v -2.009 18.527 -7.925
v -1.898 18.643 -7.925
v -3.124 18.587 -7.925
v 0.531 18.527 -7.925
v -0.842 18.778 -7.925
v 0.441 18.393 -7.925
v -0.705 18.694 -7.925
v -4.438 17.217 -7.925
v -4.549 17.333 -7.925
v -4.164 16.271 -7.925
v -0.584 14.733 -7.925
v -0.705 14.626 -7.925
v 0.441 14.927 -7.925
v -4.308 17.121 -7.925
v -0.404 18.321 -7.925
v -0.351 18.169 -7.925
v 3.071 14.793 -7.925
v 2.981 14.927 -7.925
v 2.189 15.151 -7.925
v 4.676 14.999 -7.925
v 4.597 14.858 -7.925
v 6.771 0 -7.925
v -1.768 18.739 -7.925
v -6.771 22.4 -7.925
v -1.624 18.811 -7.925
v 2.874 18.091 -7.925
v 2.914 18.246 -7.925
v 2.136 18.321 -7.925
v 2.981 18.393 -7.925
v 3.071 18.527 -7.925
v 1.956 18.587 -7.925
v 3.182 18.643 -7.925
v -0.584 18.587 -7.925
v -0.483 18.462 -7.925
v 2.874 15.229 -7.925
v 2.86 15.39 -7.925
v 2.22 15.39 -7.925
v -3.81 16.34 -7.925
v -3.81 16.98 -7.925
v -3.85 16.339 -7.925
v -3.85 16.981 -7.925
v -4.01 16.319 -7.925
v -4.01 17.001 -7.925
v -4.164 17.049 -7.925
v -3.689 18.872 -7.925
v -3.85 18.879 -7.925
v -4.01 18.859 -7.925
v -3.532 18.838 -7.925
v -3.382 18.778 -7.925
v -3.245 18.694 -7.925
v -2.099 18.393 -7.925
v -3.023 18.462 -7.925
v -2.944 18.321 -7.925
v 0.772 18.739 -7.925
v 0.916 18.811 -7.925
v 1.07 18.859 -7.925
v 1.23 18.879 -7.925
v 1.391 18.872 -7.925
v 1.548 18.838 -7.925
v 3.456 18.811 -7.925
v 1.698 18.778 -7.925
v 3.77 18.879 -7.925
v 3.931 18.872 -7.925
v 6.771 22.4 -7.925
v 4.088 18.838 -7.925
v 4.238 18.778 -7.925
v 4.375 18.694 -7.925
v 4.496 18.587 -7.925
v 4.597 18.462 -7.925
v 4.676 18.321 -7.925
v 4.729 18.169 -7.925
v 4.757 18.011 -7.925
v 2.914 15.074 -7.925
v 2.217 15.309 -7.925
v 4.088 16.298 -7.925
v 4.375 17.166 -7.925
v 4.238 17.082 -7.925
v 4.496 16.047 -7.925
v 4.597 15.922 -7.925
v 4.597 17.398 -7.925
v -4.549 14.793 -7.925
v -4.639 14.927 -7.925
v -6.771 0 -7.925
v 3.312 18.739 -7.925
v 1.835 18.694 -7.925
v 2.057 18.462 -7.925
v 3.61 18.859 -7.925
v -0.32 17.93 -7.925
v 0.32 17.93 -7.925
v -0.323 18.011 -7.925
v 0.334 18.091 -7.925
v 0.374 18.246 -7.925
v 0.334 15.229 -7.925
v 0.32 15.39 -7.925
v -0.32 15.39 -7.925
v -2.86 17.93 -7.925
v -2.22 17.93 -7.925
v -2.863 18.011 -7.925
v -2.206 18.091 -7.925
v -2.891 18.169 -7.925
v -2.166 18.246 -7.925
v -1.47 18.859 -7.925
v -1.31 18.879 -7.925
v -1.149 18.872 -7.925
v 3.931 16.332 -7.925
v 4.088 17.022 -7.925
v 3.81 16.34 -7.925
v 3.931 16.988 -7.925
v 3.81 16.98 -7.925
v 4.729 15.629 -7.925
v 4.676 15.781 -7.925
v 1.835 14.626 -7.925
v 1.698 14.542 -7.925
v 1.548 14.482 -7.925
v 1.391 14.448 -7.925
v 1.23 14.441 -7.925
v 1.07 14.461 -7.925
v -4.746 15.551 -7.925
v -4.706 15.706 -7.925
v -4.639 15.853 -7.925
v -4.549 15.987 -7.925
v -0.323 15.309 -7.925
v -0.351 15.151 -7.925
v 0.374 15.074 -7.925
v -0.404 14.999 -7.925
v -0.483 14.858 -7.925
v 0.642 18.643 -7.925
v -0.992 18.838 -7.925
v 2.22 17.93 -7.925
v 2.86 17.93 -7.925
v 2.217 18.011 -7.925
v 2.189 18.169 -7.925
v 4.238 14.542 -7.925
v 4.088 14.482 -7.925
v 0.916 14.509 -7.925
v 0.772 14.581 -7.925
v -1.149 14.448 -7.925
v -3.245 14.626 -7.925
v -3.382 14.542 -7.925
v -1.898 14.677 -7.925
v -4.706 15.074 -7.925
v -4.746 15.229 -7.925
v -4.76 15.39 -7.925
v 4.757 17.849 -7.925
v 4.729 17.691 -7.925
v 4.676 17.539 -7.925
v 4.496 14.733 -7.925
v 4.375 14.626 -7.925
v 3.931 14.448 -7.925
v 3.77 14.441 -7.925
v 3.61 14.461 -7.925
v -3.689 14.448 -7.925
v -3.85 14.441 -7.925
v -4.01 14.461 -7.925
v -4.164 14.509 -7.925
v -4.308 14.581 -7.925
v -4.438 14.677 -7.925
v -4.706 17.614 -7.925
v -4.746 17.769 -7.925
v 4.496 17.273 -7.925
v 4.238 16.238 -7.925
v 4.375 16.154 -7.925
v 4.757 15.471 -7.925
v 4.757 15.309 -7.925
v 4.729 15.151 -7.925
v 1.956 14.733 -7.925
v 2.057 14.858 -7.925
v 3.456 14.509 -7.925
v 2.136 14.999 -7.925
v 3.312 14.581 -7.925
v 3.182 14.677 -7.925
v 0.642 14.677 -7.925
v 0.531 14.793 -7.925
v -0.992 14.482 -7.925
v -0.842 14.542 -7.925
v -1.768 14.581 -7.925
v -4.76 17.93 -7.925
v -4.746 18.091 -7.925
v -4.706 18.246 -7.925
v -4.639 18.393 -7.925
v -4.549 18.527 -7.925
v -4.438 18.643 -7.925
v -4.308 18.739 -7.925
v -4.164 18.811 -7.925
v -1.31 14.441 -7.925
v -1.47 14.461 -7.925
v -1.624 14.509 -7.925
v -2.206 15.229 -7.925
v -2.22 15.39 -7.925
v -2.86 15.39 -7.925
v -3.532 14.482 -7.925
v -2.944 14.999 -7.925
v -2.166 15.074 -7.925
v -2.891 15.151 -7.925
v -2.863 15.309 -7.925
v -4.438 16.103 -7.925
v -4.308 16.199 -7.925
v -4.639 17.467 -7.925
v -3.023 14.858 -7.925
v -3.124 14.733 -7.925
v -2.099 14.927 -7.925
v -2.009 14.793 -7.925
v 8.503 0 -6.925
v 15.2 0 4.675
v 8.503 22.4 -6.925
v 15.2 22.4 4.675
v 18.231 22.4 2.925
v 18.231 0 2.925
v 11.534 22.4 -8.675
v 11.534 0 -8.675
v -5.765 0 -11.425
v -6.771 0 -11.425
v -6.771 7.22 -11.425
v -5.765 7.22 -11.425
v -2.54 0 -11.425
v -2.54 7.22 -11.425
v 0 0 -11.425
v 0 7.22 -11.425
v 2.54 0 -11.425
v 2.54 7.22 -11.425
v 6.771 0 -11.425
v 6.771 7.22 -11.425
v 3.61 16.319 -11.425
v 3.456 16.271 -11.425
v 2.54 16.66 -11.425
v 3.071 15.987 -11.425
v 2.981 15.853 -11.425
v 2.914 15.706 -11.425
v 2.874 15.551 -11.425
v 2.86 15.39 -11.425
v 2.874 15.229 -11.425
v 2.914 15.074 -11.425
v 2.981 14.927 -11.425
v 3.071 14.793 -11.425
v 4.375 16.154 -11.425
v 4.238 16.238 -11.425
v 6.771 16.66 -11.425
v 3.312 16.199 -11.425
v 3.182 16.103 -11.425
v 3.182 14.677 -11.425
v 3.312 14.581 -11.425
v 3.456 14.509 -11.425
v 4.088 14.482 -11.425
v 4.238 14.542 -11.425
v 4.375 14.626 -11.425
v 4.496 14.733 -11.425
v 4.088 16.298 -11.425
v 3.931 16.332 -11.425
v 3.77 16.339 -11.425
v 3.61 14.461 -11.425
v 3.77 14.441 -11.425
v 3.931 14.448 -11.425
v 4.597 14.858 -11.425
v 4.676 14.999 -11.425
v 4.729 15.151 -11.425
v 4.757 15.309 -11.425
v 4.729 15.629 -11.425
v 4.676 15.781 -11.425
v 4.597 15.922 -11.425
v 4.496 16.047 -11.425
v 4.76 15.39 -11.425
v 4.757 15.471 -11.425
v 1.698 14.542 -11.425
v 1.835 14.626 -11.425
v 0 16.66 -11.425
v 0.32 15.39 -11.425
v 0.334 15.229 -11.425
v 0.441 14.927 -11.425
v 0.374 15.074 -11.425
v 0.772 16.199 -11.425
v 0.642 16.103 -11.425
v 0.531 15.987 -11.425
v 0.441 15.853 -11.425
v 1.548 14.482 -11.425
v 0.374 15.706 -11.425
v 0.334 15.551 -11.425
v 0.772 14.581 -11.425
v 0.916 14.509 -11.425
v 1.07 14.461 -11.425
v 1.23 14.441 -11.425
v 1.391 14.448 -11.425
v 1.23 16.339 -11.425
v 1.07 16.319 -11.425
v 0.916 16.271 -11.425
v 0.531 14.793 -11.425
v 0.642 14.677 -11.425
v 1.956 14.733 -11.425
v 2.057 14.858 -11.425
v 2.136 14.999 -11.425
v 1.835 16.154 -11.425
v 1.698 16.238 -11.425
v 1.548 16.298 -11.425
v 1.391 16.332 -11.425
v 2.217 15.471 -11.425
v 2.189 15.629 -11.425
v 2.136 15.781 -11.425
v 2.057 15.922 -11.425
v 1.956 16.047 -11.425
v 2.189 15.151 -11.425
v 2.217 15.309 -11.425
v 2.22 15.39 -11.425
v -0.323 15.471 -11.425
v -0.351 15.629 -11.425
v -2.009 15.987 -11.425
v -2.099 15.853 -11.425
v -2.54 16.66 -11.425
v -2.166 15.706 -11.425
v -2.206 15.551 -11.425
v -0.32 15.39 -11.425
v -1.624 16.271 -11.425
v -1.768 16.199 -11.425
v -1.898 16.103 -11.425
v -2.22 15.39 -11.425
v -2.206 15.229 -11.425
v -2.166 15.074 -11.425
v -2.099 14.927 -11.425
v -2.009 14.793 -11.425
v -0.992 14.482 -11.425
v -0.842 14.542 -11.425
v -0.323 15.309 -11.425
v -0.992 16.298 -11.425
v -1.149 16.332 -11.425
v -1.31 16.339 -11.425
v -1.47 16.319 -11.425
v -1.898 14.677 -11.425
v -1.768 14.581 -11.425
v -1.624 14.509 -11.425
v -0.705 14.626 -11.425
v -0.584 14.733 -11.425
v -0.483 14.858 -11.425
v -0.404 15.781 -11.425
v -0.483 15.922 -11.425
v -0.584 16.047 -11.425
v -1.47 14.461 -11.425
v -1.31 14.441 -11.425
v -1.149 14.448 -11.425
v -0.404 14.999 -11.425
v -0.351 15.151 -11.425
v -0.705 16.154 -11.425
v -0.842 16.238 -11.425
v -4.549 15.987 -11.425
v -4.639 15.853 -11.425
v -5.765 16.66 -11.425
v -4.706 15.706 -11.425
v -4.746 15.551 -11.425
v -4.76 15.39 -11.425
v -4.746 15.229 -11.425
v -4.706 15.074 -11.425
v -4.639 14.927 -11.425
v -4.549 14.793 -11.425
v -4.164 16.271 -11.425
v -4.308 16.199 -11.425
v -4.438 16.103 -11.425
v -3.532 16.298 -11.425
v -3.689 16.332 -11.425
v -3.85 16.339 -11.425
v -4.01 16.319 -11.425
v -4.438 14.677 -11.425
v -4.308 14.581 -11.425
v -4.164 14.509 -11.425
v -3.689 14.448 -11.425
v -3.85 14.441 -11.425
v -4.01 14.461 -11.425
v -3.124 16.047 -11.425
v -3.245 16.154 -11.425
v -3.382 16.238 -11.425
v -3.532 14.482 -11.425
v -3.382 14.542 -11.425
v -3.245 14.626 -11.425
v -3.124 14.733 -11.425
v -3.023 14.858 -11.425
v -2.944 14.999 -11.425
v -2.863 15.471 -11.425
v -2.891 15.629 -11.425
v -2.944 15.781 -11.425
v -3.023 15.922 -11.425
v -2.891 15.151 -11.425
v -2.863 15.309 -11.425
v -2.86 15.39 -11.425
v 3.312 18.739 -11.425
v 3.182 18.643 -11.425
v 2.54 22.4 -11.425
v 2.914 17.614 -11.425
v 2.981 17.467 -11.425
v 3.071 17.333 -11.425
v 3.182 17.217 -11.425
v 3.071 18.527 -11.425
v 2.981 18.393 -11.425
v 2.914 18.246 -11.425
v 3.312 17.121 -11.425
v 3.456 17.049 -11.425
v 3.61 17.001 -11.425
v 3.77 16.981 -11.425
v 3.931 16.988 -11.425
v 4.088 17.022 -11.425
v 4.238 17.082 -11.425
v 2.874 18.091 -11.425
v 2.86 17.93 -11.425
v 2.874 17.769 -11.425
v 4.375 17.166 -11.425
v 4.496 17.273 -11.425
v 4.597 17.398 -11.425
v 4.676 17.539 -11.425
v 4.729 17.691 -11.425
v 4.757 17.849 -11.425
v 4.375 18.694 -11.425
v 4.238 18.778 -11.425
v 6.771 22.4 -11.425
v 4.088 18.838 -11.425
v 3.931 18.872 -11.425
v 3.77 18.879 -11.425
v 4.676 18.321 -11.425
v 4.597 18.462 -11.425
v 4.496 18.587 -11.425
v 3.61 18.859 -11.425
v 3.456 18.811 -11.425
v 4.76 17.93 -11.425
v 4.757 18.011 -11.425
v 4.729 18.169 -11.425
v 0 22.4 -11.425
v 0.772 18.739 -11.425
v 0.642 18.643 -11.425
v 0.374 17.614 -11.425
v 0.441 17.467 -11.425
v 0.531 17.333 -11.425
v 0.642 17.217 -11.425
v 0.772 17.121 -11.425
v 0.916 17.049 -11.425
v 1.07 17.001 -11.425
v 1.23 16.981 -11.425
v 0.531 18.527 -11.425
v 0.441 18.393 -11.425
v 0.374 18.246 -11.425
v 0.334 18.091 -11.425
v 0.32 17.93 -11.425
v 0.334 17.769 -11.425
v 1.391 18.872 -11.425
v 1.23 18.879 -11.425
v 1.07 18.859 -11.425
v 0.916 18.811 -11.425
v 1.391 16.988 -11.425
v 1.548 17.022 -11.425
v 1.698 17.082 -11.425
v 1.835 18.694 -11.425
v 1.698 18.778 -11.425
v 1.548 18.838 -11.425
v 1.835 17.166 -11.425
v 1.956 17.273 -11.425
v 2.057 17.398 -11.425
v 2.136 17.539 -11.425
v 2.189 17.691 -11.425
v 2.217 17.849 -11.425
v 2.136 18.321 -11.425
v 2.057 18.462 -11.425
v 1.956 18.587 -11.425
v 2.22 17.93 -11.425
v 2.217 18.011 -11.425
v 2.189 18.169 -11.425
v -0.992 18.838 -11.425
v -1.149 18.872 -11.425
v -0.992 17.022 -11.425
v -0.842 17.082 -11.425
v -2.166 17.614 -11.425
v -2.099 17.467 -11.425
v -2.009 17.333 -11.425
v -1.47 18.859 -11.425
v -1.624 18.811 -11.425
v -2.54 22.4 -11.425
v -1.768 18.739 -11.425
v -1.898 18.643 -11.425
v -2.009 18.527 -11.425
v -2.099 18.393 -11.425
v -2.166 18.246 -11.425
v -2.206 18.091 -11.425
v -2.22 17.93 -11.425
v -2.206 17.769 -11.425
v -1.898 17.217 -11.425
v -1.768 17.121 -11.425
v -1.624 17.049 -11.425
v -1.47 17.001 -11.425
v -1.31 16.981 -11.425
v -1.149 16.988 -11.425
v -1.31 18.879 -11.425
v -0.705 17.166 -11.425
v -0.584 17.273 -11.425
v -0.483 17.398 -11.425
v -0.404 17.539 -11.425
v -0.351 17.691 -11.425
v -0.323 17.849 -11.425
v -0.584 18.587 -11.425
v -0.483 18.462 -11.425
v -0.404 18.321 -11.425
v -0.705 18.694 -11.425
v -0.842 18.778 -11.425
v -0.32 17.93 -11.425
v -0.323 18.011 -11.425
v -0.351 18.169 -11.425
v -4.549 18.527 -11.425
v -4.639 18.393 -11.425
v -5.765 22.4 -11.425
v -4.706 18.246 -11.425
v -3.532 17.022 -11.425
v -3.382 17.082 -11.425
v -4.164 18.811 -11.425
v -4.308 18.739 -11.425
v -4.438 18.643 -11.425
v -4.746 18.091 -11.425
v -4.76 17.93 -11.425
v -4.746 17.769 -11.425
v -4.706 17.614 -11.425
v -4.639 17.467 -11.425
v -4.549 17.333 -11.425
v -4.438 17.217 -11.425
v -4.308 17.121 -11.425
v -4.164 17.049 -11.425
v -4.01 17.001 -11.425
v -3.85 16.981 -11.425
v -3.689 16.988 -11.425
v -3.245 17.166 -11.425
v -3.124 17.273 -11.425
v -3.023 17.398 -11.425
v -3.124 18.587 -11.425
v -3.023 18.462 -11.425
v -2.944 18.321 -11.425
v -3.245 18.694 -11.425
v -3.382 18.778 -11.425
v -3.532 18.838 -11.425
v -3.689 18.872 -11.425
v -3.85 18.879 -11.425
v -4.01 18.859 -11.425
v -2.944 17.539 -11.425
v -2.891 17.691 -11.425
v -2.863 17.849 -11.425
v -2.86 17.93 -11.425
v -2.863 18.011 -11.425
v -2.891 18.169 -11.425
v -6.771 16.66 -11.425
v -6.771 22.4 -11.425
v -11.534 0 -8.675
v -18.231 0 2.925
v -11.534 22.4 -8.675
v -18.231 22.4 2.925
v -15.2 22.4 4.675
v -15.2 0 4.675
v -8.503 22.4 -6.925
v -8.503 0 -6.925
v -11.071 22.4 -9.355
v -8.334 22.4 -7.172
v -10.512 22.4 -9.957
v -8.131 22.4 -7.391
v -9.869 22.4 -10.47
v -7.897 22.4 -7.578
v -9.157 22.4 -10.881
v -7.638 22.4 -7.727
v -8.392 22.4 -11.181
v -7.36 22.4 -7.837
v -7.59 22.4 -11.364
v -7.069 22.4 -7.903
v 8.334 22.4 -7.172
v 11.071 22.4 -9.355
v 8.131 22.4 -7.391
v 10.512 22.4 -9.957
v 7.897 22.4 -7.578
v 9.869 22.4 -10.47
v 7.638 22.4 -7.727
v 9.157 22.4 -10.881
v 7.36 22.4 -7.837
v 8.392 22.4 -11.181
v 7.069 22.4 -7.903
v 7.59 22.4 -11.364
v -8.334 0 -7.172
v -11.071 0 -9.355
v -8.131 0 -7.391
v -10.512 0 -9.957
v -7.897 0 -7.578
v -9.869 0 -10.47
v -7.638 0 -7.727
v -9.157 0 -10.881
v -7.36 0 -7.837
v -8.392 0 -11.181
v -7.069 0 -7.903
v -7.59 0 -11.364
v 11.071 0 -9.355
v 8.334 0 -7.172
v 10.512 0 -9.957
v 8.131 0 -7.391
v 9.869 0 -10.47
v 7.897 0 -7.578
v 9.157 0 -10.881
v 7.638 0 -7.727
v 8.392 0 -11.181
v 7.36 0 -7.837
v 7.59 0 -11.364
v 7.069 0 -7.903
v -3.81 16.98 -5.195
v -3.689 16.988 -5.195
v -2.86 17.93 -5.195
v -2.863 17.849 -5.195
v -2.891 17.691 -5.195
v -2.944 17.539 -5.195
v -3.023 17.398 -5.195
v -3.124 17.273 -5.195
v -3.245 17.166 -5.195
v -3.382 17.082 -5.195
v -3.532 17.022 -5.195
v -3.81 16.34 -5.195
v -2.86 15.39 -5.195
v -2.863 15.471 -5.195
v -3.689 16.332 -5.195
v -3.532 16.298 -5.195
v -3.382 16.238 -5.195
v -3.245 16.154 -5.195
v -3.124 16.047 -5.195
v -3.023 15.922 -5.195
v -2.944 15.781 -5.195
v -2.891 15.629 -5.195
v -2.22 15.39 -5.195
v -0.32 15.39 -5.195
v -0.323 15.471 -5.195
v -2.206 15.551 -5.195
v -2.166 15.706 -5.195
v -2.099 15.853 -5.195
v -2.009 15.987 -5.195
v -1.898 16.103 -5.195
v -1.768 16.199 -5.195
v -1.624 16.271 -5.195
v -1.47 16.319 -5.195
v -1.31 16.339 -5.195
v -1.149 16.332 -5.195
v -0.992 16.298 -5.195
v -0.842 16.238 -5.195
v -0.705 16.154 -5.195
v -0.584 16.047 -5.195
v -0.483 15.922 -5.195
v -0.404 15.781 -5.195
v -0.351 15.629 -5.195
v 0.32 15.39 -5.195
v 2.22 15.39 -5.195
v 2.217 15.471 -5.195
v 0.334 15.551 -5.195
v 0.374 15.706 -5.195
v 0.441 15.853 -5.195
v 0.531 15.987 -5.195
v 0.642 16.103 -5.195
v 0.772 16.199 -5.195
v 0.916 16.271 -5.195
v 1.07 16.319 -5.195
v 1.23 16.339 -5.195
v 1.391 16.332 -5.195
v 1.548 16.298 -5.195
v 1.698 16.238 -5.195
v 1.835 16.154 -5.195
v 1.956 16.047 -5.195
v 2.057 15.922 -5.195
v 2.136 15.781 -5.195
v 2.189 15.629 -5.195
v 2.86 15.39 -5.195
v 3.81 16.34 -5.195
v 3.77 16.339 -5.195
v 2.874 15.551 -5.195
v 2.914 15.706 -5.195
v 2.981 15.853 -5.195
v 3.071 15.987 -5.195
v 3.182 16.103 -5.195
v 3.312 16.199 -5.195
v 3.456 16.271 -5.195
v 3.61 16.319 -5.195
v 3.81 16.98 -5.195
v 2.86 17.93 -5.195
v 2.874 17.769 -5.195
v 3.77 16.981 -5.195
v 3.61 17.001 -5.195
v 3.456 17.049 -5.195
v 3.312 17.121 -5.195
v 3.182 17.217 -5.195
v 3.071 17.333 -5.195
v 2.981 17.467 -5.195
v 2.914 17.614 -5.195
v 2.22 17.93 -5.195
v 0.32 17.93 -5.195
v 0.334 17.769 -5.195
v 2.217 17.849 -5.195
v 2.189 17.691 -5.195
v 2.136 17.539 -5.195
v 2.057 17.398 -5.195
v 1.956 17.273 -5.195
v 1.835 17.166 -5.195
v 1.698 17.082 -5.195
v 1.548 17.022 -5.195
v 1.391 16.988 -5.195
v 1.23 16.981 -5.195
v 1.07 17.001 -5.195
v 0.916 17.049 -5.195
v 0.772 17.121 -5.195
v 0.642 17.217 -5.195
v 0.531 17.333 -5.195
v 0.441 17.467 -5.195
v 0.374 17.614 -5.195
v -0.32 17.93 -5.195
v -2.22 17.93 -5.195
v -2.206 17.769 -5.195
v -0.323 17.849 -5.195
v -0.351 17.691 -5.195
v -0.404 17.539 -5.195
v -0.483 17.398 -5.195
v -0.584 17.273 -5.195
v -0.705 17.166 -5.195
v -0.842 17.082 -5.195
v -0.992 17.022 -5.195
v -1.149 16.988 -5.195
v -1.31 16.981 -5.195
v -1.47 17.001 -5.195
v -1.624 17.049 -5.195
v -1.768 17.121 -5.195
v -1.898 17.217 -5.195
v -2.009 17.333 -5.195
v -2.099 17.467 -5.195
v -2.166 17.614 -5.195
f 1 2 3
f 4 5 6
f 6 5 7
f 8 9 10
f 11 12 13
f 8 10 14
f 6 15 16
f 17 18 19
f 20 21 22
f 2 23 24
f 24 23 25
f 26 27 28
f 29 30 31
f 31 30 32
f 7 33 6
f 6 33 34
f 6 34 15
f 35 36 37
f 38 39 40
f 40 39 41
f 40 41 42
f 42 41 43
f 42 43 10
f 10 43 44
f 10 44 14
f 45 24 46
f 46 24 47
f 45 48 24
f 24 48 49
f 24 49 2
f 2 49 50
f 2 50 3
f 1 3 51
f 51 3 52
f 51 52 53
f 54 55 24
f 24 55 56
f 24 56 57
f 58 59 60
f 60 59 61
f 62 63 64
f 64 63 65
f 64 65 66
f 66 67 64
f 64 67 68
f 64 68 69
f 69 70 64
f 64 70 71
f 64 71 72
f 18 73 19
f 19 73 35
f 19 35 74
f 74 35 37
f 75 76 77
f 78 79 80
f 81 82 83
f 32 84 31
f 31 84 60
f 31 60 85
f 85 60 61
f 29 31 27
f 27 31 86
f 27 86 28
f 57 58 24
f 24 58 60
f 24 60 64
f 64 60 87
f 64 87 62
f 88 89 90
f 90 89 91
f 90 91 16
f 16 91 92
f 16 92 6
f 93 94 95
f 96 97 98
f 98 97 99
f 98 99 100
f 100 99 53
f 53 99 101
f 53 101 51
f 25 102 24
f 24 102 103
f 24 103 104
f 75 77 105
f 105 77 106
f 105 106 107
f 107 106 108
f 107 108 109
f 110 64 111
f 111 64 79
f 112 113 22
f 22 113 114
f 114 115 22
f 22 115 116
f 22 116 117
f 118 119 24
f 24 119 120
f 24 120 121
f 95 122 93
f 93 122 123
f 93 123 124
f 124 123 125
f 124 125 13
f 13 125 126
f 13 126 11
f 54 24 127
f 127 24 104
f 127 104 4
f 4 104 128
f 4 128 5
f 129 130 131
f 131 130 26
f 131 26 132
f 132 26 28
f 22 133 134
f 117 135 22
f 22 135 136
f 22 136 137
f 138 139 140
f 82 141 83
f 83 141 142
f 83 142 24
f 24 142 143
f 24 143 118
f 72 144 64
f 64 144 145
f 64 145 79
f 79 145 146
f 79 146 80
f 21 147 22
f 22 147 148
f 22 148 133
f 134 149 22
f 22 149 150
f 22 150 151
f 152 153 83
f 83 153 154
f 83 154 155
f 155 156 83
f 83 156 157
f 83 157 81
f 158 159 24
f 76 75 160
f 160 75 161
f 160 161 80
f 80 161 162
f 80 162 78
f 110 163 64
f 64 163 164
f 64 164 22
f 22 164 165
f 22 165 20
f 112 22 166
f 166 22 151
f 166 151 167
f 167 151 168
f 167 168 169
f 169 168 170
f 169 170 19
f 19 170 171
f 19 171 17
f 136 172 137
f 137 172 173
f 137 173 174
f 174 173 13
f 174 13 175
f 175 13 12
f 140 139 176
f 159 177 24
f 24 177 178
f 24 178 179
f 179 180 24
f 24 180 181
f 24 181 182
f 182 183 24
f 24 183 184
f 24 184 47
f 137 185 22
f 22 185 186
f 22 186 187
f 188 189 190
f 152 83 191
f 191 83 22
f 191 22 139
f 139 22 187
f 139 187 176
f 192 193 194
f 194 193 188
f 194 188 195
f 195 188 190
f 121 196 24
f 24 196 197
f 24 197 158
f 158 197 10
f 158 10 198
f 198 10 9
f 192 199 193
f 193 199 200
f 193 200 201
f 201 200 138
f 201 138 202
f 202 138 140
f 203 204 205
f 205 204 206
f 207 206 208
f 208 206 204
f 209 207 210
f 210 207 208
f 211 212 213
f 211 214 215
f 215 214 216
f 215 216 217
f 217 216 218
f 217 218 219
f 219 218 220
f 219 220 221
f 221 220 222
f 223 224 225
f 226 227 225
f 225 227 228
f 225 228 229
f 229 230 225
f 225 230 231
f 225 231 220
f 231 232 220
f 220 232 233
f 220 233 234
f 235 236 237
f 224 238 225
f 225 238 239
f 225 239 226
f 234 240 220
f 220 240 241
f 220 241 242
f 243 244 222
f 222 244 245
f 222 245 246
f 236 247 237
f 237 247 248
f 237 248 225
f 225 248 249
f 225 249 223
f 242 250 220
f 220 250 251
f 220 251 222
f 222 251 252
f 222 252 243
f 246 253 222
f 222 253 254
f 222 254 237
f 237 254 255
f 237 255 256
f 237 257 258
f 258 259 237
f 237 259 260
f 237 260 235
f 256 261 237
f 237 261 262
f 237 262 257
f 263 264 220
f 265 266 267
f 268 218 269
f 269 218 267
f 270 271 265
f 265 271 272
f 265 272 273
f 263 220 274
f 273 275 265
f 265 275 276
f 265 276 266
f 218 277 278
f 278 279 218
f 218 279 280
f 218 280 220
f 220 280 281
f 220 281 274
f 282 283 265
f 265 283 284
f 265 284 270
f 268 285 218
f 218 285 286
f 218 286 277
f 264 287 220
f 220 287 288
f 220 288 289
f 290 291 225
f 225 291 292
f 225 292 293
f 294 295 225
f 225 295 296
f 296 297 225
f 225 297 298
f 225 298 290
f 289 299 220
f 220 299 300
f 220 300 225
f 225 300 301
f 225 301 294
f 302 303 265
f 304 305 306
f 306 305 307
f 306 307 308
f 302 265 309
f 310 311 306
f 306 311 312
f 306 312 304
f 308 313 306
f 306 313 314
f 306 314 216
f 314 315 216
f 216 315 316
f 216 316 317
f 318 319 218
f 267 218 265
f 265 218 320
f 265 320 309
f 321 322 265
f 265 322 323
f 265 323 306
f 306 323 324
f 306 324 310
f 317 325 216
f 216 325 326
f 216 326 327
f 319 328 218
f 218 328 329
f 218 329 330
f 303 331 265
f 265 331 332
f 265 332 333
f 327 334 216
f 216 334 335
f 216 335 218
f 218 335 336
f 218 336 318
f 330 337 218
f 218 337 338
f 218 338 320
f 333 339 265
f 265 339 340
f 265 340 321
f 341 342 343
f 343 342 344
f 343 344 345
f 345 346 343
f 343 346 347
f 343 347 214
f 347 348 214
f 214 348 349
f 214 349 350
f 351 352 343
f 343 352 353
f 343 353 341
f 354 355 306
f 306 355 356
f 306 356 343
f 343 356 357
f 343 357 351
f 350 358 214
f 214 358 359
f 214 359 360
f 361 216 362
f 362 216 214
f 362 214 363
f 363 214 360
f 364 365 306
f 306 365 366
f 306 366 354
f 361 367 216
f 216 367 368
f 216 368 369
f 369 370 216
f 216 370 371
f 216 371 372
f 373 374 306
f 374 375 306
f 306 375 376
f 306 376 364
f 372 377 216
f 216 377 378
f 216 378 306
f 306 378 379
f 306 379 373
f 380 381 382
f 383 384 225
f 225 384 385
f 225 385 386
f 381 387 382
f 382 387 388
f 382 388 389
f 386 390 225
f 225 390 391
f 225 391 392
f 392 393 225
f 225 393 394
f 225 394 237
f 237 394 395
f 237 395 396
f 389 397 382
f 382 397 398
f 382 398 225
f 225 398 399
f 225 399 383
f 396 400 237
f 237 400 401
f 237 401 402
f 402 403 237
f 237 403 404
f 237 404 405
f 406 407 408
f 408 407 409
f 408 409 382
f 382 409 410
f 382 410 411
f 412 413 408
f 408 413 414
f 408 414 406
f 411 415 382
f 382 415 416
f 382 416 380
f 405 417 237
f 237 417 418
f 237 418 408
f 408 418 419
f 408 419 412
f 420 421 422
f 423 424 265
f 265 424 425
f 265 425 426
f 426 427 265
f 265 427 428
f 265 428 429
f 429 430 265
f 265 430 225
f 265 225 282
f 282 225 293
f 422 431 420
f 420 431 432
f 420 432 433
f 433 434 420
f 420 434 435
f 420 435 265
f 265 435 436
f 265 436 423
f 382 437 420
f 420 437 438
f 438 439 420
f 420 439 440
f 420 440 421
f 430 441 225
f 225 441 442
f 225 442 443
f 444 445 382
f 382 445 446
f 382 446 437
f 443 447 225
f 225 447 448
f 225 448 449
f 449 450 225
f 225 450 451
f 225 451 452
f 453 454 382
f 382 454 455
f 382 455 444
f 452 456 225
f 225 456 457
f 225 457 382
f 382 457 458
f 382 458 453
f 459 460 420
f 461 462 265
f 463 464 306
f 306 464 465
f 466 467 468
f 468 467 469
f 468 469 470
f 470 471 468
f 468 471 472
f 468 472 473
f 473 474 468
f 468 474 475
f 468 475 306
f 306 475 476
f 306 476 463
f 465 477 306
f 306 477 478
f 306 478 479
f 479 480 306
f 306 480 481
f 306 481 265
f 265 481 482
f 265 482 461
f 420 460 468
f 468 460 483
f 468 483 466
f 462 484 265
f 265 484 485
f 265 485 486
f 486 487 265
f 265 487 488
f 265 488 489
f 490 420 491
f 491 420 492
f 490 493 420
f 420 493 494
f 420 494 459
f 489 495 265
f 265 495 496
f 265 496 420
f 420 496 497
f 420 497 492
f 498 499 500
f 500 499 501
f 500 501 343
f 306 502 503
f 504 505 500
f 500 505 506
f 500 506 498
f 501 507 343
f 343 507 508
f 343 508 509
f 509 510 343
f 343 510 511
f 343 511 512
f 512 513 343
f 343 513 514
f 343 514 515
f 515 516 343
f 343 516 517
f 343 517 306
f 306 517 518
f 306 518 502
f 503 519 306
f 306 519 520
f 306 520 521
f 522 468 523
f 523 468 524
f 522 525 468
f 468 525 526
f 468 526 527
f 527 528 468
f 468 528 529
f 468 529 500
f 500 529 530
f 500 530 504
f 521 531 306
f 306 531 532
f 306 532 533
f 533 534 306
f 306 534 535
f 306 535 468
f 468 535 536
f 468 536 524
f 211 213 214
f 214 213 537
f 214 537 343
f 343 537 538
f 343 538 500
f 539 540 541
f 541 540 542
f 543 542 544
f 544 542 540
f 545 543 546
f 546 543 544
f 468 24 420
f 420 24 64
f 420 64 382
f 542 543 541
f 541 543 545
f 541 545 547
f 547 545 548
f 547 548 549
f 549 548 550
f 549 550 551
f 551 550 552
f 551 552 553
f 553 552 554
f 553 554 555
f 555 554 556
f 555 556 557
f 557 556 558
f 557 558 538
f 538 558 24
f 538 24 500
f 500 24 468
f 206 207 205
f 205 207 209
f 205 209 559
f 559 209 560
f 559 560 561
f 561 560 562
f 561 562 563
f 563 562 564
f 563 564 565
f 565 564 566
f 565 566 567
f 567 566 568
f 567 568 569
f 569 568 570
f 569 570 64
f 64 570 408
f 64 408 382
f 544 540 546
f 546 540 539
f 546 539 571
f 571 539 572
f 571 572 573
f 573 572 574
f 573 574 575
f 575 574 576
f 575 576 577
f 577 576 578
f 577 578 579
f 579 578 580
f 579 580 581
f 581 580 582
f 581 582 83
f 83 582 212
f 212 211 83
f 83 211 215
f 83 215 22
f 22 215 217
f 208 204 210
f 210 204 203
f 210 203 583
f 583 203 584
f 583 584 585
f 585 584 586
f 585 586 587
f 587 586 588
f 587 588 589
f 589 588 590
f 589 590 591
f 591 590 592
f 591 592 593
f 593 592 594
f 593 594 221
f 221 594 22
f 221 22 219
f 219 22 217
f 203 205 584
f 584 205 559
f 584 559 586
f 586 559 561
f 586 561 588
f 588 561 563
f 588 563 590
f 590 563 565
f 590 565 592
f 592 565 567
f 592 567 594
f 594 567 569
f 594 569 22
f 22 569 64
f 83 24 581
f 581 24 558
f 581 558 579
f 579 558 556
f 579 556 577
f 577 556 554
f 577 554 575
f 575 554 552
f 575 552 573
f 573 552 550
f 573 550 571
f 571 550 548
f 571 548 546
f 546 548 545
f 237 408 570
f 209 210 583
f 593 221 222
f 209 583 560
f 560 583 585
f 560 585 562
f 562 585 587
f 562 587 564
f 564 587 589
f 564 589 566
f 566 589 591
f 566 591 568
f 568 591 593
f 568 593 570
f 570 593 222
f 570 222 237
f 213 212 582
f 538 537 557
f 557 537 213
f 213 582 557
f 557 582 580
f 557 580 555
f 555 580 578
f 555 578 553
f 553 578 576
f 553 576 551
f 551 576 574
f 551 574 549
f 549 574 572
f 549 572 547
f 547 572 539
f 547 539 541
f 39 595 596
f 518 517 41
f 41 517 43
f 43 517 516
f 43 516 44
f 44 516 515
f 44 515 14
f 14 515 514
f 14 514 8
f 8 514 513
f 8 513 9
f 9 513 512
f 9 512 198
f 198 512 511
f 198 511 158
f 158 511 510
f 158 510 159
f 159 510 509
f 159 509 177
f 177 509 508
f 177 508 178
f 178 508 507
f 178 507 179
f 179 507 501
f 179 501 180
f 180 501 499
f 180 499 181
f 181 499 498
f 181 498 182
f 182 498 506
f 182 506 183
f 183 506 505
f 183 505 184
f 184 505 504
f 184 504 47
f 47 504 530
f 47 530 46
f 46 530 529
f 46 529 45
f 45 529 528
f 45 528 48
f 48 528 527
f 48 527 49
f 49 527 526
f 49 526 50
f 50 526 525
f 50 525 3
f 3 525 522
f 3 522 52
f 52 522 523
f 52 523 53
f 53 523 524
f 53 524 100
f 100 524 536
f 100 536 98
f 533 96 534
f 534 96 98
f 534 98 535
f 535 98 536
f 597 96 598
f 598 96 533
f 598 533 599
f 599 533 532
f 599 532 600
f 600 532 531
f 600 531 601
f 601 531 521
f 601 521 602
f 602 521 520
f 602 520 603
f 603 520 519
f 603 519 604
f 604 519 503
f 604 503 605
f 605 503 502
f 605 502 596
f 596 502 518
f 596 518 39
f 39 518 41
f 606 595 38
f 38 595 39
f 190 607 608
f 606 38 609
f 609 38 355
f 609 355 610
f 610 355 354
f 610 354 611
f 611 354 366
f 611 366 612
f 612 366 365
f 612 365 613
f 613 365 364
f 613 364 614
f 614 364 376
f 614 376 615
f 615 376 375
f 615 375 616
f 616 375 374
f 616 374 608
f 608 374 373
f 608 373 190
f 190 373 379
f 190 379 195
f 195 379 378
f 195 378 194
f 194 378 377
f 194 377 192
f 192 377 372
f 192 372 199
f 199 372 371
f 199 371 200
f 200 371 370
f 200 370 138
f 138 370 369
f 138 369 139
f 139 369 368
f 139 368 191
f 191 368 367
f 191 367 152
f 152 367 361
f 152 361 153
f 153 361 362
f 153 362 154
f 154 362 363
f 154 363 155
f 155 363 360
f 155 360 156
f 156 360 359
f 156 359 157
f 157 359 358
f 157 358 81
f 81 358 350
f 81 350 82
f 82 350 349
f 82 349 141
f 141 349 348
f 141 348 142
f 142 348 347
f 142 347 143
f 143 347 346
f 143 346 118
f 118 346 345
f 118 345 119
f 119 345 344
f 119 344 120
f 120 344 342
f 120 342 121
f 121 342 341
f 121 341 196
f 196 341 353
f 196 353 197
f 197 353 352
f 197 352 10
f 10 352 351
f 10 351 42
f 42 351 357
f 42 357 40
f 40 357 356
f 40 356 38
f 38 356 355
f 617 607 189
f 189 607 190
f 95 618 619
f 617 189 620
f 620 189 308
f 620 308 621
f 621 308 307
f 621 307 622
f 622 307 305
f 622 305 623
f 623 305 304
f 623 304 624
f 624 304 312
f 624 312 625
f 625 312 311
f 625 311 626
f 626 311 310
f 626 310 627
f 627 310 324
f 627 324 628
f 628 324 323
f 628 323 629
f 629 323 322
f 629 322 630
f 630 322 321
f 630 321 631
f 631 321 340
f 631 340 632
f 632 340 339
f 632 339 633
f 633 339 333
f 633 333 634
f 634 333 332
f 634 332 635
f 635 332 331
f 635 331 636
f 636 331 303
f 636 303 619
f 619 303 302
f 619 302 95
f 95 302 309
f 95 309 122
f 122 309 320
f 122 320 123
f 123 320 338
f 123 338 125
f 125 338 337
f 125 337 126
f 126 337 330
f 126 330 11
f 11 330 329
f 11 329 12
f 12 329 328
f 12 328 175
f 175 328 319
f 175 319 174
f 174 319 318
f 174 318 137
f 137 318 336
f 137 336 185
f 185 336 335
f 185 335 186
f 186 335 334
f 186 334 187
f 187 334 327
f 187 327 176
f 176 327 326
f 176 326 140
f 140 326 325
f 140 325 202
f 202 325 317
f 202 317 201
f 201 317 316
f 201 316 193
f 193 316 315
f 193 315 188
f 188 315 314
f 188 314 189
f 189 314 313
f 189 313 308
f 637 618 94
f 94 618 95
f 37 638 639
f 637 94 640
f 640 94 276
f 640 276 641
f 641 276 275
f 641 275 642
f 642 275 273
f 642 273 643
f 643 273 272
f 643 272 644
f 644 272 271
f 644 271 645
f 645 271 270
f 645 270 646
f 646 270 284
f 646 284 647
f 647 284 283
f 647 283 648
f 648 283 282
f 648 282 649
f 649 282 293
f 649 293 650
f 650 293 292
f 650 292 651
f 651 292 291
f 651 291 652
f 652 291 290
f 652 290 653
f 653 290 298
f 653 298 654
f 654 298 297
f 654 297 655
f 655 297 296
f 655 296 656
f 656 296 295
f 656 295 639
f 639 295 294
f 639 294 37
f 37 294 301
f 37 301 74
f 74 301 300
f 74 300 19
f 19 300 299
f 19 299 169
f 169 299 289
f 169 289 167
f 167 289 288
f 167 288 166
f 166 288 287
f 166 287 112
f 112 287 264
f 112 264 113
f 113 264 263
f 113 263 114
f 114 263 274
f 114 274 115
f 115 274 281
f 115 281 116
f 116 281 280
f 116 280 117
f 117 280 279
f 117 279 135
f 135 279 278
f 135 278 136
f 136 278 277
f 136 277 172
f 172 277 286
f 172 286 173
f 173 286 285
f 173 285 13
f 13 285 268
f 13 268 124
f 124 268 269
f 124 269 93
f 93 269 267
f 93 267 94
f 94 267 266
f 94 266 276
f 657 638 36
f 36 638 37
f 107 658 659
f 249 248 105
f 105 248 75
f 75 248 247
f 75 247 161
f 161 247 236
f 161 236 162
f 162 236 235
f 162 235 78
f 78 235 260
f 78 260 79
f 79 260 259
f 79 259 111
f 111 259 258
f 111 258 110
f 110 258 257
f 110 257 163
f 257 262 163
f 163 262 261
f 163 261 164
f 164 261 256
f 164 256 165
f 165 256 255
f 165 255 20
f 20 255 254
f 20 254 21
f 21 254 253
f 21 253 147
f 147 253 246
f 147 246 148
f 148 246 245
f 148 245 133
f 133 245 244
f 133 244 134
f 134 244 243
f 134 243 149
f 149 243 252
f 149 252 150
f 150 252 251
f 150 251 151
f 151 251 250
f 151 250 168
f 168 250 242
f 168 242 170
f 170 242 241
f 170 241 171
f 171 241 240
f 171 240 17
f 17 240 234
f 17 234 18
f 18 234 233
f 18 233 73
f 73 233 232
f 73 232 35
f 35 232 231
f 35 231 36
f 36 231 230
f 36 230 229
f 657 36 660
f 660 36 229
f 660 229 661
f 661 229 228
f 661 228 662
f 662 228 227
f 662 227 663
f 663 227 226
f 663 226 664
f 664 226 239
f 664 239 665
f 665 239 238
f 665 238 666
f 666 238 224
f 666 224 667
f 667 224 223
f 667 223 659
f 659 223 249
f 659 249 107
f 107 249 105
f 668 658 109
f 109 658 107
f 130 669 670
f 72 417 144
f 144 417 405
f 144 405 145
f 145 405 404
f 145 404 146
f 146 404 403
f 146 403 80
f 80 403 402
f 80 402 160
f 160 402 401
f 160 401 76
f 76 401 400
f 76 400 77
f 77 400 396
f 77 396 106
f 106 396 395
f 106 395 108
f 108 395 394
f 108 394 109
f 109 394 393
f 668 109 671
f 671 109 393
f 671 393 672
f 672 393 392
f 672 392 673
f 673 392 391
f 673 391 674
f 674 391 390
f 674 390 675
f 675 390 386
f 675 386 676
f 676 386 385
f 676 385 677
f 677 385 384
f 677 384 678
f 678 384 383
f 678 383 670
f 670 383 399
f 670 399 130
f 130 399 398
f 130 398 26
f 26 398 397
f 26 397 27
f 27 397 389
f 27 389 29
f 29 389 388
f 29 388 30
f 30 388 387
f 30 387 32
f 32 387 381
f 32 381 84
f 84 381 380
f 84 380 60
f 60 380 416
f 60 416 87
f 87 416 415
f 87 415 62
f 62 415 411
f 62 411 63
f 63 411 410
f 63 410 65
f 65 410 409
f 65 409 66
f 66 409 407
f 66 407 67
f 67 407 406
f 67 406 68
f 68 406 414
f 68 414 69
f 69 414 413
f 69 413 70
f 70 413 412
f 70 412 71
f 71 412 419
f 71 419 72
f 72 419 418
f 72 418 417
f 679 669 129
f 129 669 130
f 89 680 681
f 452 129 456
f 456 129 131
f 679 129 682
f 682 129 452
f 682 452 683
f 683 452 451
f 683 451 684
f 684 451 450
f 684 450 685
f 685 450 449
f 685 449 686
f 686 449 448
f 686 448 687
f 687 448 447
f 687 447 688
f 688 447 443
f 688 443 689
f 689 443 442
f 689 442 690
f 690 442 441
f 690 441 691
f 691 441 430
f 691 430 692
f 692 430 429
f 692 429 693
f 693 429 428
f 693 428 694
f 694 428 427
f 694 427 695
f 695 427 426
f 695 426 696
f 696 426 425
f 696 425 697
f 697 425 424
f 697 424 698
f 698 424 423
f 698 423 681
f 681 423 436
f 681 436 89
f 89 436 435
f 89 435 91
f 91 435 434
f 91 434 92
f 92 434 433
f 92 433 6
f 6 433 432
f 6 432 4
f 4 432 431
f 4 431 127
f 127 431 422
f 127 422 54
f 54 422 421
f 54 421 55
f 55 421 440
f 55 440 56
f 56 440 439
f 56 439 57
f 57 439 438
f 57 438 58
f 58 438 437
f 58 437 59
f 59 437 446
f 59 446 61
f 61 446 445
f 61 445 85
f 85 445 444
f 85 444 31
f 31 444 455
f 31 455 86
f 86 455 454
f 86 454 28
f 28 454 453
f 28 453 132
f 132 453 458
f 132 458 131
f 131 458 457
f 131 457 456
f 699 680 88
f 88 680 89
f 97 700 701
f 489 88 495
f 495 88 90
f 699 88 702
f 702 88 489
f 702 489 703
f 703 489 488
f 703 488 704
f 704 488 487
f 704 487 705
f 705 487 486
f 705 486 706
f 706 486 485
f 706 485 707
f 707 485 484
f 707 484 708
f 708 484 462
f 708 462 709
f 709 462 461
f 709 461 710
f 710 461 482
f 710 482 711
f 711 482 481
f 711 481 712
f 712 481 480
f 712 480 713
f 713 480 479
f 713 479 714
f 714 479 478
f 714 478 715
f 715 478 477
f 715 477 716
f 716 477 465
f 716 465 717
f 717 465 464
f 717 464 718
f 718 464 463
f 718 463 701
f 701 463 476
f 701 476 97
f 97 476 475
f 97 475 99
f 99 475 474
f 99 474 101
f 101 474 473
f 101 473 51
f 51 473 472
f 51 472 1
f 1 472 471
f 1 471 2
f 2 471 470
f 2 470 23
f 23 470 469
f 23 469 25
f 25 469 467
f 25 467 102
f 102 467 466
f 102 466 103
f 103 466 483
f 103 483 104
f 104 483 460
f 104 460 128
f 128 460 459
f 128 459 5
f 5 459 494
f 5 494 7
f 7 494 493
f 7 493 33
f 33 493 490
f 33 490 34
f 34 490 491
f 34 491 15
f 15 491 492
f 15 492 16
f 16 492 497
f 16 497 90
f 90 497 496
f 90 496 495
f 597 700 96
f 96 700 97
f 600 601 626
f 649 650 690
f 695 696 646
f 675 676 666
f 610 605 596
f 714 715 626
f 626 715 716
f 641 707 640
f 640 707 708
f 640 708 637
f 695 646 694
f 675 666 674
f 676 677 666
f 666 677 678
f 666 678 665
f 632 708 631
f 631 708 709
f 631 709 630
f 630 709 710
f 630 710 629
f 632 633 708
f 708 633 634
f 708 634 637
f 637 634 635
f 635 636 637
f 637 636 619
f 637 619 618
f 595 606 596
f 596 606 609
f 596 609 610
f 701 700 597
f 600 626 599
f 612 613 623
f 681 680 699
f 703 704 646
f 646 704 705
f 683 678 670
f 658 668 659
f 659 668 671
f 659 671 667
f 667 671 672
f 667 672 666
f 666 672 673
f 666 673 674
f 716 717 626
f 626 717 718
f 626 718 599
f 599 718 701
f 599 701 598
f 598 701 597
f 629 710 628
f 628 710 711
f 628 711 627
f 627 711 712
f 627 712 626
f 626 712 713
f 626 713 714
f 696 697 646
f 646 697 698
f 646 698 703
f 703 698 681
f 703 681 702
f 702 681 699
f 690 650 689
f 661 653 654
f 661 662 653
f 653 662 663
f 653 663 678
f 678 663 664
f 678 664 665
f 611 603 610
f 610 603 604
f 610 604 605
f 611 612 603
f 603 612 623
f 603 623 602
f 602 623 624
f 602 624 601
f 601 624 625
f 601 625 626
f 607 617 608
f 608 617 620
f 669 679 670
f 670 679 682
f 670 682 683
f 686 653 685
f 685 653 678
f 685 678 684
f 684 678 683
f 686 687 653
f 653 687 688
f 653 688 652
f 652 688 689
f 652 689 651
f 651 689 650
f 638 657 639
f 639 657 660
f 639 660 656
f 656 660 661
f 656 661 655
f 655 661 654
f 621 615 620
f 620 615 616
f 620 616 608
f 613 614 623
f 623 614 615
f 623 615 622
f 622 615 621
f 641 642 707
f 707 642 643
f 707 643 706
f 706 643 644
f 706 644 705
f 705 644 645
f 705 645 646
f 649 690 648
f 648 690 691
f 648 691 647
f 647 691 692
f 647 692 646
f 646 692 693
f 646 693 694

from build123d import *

# Parameters (mm, degrees)
BOSS_EXTRUDE1_DEPTH     = 22.4
FILLET1_R               = 2
FILLET2_R               = 5.5
BOSS_EXTRUDE2_DEPTH     = 2.73
CUT_EXTRUDE2_DEPTH      = 32.510198396
CUT_EXTRUDE2_DEPTH_BACK = 32.510198396
SKETCH3_R               = 0.95


with BuildPart() as part:
    # Sketch1 → Boss-Extrude1 (new body)
    with BuildSketch(Plane(origin=(0, 0, 0), x_dir=(1, 0, 0), z_dir=(0, 1, 0))):
        Polygon((-7.925386608, 7.925386608), (-15.2, -4.674613392), (-18.231088913, -2.924613392), (-9.94611255, 11.425386608), (9.94611255, 11.425386608), (18.231088913, -2.924613392), (15.2, -4.674613392), (7.925386608, 7.925386608), align=None)
    extrude(amount=BOSS_EXTRUDE1_DEPTH)

    # Fillet1
    fillet1_edges = [part.edges().sort_by_distance(p)[0] for p in [
        (7.925386608, 11.2, -7.925386608),
        (-7.925386608, 11.2, -7.925386608),
    ]]
    fillet(fillet1_edges, radius=FILLET1_R)

    # Fillet2
    fillet2_edges = [part.edges().sort_by_distance(p)[0] for p in [
        (-9.94611255, 11.2, -11.425386608),
        (9.94611255, 11.2, -11.425386608),
    ]]
    fillet(fillet2_edges, radius=FILLET2_R)

    # Sketch2 → Boss-Extrude2 (add)
    with BuildSketch(Plane.XY.offset(-7.925386608)):
        with BuildLine():
            Line((-0.32, 17.93), (0.32, 17.93))
            ThreePointArc((0.32, 17.93), (1.27, 16.98), (2.22, 17.93))
            Line((2.22, 17.93), (2.86, 17.93))
            ThreePointArc((2.86, 17.93), (3.138248558, 17.258248558), (3.81, 16.98))
            Line((3.81, 16.98), (3.81, 16.34))
            ThreePointArc((3.81, 16.34), (3.138248558, 16.061751442), (2.86, 15.39))
            Line((2.86, 15.39), (2.22, 15.39))
            ThreePointArc((2.22, 15.39), (1.27, 16.34), (0.32, 15.39))
            Line((0.32, 15.39), (-0.32, 15.39))
            ThreePointArc((-0.32, 15.39), (-1.27, 16.34), (-2.22, 15.39))
            Line((-2.22, 15.39), (-2.86, 15.39))
            ThreePointArc((-2.86, 15.39), (-3.138248558, 16.061751442), (-3.81, 16.34))
            Line((-3.81, 16.34), (-3.81, 16.98))
            ThreePointArc((-3.81, 16.98), (-3.138248558, 17.258248558), (-2.86, 17.93))
            Line((-2.86, 17.93), (-2.22, 17.93))
            ThreePointArc((-2.22, 17.93), (-1.27, 16.98), (-0.32, 17.93))
        make_face()
    extrude(amount=BOSS_EXTRUDE2_DEPTH)

    # Sketch3 → Cut-Extrude2 (cut, two sides: drawn at the far end of the back side and taken through both)
    with BuildSketch(Plane.XY.offset(-7.925386608).offset(-CUT_EXTRUDE2_DEPTH_BACK)):
        with Locations((-3.81, 17.93)):
            Circle(SKETCH3_R)
        with Locations((-1.27, 17.93)):
            Circle(SKETCH3_R)
        with Locations((1.27, 17.93)):
            Circle(SKETCH3_R)
        with Locations(Location((3.81, 17.93, 0), (0, 0, 180))):
            Circle(SKETCH3_R)
        with Locations(Location((3.81, 15.39, 0), (0, 0, 180))):
            Circle(SKETCH3_R)
        with Locations((1.27, 15.39)):
            Circle(SKETCH3_R)
        with Locations((-1.27, 15.39)):
            Circle(SKETCH3_R)
        with Locations((-3.81, 15.39)):
            Circle(SKETCH3_R)
    extrude(amount=CUT_EXTRUDE2_DEPTH + CUT_EXTRUDE2_DEPTH_BACK, mode=Mode.SUBTRACT)


solid = part.part
